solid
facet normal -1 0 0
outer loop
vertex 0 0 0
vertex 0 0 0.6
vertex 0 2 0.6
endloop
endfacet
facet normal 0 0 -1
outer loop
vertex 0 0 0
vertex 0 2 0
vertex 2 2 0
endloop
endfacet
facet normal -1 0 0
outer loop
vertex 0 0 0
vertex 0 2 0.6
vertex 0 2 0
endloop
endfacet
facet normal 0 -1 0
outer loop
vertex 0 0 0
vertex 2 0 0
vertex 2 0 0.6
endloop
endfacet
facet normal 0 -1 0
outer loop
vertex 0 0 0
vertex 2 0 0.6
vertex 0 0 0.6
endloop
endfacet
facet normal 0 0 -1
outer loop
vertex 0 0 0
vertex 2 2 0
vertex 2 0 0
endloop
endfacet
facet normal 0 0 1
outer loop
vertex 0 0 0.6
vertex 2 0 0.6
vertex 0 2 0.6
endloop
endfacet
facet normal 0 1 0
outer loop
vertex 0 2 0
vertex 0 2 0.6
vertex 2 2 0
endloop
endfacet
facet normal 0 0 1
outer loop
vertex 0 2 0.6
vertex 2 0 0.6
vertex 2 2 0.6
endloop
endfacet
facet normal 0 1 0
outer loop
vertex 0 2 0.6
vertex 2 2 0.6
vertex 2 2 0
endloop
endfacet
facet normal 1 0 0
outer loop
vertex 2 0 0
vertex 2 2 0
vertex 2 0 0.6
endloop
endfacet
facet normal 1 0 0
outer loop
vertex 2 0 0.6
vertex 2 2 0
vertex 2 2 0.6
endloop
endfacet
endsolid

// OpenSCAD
/* Warning, this is a very basic generator with a lot of approximation 
input data : [UDFN, HYA, 2x2x0.6mm, 8, , C, C04-01158C]
generated by com.zoubworld.electronics.cad.model3d.Basic
Date : Sun Feb 15 10:50:49 CET 2026
*/

//body
color("black")
translate([0,0,0])
cube([2.0,2.0,0.6], center=false);
